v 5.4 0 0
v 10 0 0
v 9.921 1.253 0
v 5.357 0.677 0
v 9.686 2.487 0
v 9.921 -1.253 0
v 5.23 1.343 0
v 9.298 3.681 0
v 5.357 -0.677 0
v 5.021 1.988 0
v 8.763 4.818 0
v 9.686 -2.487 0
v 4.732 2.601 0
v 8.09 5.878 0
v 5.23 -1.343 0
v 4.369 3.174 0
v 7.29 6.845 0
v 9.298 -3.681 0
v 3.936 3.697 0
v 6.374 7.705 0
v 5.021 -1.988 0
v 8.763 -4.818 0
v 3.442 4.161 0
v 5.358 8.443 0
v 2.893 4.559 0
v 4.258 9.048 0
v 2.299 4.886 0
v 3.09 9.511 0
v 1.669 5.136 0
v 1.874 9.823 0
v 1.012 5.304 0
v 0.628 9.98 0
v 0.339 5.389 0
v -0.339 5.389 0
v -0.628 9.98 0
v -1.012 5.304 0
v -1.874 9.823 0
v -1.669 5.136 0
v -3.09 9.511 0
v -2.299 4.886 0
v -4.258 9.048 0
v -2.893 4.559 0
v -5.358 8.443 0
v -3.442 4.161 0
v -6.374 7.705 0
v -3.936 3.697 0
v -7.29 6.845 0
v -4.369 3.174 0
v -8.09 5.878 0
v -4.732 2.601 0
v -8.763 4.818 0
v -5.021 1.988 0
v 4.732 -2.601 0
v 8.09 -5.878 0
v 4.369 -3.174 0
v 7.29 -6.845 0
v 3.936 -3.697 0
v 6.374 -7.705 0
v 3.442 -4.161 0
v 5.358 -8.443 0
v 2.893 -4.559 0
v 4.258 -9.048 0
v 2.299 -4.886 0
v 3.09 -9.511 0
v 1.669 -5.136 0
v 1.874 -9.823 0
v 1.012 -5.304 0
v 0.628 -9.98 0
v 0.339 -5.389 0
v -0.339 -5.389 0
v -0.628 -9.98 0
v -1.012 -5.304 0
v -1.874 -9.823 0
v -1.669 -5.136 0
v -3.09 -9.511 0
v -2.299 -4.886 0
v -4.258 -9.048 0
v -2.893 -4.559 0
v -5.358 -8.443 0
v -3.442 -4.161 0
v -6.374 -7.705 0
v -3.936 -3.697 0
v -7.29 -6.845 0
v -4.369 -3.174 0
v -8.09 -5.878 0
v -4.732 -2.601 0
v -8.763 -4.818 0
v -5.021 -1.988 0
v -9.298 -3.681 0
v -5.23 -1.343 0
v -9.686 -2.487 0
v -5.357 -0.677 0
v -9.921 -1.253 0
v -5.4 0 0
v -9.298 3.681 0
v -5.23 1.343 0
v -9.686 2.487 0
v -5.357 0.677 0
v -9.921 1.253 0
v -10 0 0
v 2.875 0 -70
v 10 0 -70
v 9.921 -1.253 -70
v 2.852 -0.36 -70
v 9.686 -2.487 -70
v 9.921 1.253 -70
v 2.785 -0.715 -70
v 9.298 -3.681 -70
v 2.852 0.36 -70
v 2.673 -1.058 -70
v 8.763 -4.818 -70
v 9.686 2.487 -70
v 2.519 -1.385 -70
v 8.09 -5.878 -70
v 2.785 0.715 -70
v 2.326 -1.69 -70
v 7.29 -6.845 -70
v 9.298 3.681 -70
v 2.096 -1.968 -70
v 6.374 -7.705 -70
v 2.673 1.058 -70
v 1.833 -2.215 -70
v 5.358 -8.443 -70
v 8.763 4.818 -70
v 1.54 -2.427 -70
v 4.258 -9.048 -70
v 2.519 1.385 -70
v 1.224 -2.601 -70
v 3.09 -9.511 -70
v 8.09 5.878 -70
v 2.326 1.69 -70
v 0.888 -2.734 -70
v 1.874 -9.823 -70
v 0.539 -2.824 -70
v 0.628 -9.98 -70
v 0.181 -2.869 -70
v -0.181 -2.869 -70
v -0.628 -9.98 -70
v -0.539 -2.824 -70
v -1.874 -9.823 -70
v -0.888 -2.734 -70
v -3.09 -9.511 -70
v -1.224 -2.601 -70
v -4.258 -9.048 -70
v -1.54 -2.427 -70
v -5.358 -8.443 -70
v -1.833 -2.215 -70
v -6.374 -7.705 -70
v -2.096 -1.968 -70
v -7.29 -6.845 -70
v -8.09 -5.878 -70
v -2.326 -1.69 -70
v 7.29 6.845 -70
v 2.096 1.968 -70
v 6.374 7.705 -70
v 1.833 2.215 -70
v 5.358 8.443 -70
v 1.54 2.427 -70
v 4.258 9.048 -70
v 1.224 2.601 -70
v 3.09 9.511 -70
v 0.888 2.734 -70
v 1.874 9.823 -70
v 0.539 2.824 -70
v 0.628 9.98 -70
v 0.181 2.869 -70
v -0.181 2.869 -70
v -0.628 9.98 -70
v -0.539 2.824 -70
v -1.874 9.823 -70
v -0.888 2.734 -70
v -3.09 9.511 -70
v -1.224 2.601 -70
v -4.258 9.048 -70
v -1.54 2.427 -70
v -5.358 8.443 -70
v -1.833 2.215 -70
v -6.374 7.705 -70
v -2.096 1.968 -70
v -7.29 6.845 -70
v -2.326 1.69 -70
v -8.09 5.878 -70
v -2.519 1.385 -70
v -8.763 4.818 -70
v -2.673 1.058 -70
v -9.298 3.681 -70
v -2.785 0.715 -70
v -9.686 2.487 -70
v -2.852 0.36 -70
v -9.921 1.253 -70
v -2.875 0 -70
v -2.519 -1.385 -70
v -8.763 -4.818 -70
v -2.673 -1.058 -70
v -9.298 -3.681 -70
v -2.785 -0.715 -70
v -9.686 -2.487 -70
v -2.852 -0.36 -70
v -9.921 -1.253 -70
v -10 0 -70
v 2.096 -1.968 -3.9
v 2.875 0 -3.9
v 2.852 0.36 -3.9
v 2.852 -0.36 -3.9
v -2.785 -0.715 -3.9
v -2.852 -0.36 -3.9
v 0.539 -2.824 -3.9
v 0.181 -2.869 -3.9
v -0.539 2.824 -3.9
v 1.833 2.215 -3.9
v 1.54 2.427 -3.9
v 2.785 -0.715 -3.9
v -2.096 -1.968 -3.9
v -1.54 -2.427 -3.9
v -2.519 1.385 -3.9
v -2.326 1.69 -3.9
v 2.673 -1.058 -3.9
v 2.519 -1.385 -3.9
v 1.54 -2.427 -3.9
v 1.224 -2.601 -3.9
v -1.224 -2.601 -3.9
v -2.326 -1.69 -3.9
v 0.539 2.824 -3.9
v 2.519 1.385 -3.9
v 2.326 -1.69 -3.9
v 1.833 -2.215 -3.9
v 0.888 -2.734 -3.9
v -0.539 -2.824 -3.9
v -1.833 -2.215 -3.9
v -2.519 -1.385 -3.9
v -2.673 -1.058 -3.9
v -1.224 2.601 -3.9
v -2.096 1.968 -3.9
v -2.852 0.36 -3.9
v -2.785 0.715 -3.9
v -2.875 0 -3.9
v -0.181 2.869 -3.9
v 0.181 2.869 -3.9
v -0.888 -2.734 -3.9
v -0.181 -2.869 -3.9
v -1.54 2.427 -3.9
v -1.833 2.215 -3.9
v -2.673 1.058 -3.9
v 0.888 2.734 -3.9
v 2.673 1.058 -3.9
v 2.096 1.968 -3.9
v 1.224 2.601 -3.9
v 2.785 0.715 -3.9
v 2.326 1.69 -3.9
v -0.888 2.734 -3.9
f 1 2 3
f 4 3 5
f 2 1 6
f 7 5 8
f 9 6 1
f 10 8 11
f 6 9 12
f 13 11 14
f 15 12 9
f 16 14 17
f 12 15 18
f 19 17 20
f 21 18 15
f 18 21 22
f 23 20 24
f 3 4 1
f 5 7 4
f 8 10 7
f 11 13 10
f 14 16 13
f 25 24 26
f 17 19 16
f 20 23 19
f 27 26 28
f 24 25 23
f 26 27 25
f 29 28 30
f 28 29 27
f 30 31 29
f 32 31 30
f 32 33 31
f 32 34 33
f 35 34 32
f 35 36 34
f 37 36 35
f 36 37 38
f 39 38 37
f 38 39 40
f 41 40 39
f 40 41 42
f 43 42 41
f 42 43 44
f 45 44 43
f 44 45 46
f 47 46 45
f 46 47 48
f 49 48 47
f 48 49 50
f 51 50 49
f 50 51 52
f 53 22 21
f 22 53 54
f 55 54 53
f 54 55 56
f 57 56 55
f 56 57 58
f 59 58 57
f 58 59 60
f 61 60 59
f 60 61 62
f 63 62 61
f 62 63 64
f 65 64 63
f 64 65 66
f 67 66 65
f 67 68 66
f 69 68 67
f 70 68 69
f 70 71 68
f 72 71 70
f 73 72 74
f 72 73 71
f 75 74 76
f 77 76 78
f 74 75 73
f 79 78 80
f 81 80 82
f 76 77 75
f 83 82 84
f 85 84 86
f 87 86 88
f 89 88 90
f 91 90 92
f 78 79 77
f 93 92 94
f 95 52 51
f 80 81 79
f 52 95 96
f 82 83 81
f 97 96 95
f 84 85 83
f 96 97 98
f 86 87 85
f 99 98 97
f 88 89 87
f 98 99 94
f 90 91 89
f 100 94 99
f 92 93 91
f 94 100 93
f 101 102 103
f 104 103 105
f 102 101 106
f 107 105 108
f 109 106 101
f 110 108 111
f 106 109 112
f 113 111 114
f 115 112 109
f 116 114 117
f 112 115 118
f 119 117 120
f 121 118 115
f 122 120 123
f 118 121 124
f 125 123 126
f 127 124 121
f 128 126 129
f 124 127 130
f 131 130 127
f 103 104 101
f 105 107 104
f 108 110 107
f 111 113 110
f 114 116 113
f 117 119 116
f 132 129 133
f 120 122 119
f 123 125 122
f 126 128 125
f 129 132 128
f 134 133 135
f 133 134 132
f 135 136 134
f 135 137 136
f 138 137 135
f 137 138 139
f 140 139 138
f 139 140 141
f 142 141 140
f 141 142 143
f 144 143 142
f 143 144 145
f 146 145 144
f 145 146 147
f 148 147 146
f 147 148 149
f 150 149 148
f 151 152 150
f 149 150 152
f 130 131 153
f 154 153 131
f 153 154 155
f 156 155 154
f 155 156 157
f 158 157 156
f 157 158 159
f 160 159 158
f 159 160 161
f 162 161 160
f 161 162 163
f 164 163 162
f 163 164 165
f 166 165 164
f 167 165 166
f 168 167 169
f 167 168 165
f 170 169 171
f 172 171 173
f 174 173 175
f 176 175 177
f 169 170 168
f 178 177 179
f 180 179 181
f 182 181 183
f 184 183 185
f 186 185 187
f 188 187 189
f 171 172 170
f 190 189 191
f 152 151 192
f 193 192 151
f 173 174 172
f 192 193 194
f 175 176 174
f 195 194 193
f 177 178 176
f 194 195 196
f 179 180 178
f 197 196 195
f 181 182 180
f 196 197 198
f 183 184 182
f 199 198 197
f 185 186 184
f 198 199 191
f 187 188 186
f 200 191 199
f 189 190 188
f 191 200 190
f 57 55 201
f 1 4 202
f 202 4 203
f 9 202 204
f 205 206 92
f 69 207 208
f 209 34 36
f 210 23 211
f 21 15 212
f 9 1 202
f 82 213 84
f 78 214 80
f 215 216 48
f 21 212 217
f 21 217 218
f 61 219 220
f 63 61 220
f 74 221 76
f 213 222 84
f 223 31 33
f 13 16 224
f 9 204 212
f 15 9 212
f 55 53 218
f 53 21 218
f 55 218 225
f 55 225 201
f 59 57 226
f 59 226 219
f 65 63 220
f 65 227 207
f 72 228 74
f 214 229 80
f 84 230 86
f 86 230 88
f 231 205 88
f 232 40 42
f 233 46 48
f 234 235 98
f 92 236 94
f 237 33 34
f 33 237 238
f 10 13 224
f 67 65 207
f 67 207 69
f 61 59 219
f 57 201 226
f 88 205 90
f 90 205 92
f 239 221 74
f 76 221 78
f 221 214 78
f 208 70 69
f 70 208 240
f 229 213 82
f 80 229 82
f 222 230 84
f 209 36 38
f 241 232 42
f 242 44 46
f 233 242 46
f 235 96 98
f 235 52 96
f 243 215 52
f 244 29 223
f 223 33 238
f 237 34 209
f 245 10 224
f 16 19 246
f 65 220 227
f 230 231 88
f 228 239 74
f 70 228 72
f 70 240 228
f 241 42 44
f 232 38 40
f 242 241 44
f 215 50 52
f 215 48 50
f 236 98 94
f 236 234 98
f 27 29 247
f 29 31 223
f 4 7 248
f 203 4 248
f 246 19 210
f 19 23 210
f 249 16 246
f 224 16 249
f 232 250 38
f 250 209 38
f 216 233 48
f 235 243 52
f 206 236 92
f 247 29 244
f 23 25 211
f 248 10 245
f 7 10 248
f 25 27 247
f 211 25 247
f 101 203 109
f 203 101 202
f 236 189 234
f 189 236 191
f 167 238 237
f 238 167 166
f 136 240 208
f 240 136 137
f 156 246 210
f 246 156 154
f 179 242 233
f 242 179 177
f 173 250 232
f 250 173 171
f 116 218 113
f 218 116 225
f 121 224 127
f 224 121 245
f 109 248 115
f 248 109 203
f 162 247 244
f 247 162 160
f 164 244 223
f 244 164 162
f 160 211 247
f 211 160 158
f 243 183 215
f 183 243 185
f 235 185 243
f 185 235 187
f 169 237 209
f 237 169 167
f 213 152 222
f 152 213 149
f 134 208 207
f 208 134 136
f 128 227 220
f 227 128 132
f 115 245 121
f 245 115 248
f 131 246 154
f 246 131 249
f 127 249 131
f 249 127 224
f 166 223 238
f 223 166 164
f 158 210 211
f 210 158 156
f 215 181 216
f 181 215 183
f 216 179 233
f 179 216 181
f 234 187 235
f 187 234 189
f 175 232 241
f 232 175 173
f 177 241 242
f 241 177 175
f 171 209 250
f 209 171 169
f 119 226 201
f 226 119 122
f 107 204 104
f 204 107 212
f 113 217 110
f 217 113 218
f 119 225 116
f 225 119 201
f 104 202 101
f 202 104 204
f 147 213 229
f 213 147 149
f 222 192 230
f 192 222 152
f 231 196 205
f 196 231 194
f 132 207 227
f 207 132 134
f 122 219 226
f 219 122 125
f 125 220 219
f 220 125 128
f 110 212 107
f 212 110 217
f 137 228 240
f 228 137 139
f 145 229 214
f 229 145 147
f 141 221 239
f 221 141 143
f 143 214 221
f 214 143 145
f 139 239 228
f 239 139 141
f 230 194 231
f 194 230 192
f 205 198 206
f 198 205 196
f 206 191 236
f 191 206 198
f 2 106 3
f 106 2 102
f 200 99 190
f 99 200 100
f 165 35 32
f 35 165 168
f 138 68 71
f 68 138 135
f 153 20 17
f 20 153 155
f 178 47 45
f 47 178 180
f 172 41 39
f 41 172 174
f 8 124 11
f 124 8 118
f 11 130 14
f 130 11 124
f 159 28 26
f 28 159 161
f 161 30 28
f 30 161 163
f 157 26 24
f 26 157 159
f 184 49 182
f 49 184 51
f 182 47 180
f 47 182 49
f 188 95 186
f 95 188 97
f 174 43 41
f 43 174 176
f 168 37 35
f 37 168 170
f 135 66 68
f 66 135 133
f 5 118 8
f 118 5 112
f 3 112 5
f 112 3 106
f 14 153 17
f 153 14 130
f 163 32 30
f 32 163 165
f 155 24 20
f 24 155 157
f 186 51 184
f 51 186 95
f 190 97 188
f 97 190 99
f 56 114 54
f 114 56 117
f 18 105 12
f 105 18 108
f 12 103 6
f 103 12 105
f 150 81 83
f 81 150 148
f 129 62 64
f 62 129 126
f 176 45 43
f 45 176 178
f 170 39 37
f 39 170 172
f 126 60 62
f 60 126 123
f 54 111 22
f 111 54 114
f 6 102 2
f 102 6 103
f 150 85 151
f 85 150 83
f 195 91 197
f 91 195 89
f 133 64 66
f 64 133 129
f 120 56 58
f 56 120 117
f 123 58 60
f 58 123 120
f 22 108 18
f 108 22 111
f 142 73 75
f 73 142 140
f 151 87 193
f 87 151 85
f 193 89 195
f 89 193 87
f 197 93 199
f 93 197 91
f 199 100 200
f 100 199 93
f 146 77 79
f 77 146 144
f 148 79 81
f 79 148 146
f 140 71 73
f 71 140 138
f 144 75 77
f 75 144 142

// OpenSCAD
$fn = 50;


difference() {
	union() {
		translate(v = [0, 0, -70.0000000000]) {
			cylinder(h = 70, r = 10.0000000000);
		}
		cylinder(h = 0, r = 13.0000000000);
	}
	union() {
		translate(v = [0, 0, 0]) {
			rotate(a = [0, 0, 0]) {
				difference() {
					union() {
						#translate(v = [0, 0, -70.0000000000]) {
							cylinder(h = 70, r = 2.6000000000);
						}
						#translate(v = [0, 0, -3.9000000000]) {
							cylinder(h = 3.9000000000, r1 = 2.8750000000, r2 = 5.4000000000);
						}
						#translate(v = [0, 0, -70.0000000000]) {
							cylinder(h = 70, r = 2.8750000000);
						}
						#translate(v = [0, 0, -70.0000000000]) {
							cylinder(h = 70, r = 2.6000000000);
						}
					}
					union();
				}
			}
		}
	}
}
